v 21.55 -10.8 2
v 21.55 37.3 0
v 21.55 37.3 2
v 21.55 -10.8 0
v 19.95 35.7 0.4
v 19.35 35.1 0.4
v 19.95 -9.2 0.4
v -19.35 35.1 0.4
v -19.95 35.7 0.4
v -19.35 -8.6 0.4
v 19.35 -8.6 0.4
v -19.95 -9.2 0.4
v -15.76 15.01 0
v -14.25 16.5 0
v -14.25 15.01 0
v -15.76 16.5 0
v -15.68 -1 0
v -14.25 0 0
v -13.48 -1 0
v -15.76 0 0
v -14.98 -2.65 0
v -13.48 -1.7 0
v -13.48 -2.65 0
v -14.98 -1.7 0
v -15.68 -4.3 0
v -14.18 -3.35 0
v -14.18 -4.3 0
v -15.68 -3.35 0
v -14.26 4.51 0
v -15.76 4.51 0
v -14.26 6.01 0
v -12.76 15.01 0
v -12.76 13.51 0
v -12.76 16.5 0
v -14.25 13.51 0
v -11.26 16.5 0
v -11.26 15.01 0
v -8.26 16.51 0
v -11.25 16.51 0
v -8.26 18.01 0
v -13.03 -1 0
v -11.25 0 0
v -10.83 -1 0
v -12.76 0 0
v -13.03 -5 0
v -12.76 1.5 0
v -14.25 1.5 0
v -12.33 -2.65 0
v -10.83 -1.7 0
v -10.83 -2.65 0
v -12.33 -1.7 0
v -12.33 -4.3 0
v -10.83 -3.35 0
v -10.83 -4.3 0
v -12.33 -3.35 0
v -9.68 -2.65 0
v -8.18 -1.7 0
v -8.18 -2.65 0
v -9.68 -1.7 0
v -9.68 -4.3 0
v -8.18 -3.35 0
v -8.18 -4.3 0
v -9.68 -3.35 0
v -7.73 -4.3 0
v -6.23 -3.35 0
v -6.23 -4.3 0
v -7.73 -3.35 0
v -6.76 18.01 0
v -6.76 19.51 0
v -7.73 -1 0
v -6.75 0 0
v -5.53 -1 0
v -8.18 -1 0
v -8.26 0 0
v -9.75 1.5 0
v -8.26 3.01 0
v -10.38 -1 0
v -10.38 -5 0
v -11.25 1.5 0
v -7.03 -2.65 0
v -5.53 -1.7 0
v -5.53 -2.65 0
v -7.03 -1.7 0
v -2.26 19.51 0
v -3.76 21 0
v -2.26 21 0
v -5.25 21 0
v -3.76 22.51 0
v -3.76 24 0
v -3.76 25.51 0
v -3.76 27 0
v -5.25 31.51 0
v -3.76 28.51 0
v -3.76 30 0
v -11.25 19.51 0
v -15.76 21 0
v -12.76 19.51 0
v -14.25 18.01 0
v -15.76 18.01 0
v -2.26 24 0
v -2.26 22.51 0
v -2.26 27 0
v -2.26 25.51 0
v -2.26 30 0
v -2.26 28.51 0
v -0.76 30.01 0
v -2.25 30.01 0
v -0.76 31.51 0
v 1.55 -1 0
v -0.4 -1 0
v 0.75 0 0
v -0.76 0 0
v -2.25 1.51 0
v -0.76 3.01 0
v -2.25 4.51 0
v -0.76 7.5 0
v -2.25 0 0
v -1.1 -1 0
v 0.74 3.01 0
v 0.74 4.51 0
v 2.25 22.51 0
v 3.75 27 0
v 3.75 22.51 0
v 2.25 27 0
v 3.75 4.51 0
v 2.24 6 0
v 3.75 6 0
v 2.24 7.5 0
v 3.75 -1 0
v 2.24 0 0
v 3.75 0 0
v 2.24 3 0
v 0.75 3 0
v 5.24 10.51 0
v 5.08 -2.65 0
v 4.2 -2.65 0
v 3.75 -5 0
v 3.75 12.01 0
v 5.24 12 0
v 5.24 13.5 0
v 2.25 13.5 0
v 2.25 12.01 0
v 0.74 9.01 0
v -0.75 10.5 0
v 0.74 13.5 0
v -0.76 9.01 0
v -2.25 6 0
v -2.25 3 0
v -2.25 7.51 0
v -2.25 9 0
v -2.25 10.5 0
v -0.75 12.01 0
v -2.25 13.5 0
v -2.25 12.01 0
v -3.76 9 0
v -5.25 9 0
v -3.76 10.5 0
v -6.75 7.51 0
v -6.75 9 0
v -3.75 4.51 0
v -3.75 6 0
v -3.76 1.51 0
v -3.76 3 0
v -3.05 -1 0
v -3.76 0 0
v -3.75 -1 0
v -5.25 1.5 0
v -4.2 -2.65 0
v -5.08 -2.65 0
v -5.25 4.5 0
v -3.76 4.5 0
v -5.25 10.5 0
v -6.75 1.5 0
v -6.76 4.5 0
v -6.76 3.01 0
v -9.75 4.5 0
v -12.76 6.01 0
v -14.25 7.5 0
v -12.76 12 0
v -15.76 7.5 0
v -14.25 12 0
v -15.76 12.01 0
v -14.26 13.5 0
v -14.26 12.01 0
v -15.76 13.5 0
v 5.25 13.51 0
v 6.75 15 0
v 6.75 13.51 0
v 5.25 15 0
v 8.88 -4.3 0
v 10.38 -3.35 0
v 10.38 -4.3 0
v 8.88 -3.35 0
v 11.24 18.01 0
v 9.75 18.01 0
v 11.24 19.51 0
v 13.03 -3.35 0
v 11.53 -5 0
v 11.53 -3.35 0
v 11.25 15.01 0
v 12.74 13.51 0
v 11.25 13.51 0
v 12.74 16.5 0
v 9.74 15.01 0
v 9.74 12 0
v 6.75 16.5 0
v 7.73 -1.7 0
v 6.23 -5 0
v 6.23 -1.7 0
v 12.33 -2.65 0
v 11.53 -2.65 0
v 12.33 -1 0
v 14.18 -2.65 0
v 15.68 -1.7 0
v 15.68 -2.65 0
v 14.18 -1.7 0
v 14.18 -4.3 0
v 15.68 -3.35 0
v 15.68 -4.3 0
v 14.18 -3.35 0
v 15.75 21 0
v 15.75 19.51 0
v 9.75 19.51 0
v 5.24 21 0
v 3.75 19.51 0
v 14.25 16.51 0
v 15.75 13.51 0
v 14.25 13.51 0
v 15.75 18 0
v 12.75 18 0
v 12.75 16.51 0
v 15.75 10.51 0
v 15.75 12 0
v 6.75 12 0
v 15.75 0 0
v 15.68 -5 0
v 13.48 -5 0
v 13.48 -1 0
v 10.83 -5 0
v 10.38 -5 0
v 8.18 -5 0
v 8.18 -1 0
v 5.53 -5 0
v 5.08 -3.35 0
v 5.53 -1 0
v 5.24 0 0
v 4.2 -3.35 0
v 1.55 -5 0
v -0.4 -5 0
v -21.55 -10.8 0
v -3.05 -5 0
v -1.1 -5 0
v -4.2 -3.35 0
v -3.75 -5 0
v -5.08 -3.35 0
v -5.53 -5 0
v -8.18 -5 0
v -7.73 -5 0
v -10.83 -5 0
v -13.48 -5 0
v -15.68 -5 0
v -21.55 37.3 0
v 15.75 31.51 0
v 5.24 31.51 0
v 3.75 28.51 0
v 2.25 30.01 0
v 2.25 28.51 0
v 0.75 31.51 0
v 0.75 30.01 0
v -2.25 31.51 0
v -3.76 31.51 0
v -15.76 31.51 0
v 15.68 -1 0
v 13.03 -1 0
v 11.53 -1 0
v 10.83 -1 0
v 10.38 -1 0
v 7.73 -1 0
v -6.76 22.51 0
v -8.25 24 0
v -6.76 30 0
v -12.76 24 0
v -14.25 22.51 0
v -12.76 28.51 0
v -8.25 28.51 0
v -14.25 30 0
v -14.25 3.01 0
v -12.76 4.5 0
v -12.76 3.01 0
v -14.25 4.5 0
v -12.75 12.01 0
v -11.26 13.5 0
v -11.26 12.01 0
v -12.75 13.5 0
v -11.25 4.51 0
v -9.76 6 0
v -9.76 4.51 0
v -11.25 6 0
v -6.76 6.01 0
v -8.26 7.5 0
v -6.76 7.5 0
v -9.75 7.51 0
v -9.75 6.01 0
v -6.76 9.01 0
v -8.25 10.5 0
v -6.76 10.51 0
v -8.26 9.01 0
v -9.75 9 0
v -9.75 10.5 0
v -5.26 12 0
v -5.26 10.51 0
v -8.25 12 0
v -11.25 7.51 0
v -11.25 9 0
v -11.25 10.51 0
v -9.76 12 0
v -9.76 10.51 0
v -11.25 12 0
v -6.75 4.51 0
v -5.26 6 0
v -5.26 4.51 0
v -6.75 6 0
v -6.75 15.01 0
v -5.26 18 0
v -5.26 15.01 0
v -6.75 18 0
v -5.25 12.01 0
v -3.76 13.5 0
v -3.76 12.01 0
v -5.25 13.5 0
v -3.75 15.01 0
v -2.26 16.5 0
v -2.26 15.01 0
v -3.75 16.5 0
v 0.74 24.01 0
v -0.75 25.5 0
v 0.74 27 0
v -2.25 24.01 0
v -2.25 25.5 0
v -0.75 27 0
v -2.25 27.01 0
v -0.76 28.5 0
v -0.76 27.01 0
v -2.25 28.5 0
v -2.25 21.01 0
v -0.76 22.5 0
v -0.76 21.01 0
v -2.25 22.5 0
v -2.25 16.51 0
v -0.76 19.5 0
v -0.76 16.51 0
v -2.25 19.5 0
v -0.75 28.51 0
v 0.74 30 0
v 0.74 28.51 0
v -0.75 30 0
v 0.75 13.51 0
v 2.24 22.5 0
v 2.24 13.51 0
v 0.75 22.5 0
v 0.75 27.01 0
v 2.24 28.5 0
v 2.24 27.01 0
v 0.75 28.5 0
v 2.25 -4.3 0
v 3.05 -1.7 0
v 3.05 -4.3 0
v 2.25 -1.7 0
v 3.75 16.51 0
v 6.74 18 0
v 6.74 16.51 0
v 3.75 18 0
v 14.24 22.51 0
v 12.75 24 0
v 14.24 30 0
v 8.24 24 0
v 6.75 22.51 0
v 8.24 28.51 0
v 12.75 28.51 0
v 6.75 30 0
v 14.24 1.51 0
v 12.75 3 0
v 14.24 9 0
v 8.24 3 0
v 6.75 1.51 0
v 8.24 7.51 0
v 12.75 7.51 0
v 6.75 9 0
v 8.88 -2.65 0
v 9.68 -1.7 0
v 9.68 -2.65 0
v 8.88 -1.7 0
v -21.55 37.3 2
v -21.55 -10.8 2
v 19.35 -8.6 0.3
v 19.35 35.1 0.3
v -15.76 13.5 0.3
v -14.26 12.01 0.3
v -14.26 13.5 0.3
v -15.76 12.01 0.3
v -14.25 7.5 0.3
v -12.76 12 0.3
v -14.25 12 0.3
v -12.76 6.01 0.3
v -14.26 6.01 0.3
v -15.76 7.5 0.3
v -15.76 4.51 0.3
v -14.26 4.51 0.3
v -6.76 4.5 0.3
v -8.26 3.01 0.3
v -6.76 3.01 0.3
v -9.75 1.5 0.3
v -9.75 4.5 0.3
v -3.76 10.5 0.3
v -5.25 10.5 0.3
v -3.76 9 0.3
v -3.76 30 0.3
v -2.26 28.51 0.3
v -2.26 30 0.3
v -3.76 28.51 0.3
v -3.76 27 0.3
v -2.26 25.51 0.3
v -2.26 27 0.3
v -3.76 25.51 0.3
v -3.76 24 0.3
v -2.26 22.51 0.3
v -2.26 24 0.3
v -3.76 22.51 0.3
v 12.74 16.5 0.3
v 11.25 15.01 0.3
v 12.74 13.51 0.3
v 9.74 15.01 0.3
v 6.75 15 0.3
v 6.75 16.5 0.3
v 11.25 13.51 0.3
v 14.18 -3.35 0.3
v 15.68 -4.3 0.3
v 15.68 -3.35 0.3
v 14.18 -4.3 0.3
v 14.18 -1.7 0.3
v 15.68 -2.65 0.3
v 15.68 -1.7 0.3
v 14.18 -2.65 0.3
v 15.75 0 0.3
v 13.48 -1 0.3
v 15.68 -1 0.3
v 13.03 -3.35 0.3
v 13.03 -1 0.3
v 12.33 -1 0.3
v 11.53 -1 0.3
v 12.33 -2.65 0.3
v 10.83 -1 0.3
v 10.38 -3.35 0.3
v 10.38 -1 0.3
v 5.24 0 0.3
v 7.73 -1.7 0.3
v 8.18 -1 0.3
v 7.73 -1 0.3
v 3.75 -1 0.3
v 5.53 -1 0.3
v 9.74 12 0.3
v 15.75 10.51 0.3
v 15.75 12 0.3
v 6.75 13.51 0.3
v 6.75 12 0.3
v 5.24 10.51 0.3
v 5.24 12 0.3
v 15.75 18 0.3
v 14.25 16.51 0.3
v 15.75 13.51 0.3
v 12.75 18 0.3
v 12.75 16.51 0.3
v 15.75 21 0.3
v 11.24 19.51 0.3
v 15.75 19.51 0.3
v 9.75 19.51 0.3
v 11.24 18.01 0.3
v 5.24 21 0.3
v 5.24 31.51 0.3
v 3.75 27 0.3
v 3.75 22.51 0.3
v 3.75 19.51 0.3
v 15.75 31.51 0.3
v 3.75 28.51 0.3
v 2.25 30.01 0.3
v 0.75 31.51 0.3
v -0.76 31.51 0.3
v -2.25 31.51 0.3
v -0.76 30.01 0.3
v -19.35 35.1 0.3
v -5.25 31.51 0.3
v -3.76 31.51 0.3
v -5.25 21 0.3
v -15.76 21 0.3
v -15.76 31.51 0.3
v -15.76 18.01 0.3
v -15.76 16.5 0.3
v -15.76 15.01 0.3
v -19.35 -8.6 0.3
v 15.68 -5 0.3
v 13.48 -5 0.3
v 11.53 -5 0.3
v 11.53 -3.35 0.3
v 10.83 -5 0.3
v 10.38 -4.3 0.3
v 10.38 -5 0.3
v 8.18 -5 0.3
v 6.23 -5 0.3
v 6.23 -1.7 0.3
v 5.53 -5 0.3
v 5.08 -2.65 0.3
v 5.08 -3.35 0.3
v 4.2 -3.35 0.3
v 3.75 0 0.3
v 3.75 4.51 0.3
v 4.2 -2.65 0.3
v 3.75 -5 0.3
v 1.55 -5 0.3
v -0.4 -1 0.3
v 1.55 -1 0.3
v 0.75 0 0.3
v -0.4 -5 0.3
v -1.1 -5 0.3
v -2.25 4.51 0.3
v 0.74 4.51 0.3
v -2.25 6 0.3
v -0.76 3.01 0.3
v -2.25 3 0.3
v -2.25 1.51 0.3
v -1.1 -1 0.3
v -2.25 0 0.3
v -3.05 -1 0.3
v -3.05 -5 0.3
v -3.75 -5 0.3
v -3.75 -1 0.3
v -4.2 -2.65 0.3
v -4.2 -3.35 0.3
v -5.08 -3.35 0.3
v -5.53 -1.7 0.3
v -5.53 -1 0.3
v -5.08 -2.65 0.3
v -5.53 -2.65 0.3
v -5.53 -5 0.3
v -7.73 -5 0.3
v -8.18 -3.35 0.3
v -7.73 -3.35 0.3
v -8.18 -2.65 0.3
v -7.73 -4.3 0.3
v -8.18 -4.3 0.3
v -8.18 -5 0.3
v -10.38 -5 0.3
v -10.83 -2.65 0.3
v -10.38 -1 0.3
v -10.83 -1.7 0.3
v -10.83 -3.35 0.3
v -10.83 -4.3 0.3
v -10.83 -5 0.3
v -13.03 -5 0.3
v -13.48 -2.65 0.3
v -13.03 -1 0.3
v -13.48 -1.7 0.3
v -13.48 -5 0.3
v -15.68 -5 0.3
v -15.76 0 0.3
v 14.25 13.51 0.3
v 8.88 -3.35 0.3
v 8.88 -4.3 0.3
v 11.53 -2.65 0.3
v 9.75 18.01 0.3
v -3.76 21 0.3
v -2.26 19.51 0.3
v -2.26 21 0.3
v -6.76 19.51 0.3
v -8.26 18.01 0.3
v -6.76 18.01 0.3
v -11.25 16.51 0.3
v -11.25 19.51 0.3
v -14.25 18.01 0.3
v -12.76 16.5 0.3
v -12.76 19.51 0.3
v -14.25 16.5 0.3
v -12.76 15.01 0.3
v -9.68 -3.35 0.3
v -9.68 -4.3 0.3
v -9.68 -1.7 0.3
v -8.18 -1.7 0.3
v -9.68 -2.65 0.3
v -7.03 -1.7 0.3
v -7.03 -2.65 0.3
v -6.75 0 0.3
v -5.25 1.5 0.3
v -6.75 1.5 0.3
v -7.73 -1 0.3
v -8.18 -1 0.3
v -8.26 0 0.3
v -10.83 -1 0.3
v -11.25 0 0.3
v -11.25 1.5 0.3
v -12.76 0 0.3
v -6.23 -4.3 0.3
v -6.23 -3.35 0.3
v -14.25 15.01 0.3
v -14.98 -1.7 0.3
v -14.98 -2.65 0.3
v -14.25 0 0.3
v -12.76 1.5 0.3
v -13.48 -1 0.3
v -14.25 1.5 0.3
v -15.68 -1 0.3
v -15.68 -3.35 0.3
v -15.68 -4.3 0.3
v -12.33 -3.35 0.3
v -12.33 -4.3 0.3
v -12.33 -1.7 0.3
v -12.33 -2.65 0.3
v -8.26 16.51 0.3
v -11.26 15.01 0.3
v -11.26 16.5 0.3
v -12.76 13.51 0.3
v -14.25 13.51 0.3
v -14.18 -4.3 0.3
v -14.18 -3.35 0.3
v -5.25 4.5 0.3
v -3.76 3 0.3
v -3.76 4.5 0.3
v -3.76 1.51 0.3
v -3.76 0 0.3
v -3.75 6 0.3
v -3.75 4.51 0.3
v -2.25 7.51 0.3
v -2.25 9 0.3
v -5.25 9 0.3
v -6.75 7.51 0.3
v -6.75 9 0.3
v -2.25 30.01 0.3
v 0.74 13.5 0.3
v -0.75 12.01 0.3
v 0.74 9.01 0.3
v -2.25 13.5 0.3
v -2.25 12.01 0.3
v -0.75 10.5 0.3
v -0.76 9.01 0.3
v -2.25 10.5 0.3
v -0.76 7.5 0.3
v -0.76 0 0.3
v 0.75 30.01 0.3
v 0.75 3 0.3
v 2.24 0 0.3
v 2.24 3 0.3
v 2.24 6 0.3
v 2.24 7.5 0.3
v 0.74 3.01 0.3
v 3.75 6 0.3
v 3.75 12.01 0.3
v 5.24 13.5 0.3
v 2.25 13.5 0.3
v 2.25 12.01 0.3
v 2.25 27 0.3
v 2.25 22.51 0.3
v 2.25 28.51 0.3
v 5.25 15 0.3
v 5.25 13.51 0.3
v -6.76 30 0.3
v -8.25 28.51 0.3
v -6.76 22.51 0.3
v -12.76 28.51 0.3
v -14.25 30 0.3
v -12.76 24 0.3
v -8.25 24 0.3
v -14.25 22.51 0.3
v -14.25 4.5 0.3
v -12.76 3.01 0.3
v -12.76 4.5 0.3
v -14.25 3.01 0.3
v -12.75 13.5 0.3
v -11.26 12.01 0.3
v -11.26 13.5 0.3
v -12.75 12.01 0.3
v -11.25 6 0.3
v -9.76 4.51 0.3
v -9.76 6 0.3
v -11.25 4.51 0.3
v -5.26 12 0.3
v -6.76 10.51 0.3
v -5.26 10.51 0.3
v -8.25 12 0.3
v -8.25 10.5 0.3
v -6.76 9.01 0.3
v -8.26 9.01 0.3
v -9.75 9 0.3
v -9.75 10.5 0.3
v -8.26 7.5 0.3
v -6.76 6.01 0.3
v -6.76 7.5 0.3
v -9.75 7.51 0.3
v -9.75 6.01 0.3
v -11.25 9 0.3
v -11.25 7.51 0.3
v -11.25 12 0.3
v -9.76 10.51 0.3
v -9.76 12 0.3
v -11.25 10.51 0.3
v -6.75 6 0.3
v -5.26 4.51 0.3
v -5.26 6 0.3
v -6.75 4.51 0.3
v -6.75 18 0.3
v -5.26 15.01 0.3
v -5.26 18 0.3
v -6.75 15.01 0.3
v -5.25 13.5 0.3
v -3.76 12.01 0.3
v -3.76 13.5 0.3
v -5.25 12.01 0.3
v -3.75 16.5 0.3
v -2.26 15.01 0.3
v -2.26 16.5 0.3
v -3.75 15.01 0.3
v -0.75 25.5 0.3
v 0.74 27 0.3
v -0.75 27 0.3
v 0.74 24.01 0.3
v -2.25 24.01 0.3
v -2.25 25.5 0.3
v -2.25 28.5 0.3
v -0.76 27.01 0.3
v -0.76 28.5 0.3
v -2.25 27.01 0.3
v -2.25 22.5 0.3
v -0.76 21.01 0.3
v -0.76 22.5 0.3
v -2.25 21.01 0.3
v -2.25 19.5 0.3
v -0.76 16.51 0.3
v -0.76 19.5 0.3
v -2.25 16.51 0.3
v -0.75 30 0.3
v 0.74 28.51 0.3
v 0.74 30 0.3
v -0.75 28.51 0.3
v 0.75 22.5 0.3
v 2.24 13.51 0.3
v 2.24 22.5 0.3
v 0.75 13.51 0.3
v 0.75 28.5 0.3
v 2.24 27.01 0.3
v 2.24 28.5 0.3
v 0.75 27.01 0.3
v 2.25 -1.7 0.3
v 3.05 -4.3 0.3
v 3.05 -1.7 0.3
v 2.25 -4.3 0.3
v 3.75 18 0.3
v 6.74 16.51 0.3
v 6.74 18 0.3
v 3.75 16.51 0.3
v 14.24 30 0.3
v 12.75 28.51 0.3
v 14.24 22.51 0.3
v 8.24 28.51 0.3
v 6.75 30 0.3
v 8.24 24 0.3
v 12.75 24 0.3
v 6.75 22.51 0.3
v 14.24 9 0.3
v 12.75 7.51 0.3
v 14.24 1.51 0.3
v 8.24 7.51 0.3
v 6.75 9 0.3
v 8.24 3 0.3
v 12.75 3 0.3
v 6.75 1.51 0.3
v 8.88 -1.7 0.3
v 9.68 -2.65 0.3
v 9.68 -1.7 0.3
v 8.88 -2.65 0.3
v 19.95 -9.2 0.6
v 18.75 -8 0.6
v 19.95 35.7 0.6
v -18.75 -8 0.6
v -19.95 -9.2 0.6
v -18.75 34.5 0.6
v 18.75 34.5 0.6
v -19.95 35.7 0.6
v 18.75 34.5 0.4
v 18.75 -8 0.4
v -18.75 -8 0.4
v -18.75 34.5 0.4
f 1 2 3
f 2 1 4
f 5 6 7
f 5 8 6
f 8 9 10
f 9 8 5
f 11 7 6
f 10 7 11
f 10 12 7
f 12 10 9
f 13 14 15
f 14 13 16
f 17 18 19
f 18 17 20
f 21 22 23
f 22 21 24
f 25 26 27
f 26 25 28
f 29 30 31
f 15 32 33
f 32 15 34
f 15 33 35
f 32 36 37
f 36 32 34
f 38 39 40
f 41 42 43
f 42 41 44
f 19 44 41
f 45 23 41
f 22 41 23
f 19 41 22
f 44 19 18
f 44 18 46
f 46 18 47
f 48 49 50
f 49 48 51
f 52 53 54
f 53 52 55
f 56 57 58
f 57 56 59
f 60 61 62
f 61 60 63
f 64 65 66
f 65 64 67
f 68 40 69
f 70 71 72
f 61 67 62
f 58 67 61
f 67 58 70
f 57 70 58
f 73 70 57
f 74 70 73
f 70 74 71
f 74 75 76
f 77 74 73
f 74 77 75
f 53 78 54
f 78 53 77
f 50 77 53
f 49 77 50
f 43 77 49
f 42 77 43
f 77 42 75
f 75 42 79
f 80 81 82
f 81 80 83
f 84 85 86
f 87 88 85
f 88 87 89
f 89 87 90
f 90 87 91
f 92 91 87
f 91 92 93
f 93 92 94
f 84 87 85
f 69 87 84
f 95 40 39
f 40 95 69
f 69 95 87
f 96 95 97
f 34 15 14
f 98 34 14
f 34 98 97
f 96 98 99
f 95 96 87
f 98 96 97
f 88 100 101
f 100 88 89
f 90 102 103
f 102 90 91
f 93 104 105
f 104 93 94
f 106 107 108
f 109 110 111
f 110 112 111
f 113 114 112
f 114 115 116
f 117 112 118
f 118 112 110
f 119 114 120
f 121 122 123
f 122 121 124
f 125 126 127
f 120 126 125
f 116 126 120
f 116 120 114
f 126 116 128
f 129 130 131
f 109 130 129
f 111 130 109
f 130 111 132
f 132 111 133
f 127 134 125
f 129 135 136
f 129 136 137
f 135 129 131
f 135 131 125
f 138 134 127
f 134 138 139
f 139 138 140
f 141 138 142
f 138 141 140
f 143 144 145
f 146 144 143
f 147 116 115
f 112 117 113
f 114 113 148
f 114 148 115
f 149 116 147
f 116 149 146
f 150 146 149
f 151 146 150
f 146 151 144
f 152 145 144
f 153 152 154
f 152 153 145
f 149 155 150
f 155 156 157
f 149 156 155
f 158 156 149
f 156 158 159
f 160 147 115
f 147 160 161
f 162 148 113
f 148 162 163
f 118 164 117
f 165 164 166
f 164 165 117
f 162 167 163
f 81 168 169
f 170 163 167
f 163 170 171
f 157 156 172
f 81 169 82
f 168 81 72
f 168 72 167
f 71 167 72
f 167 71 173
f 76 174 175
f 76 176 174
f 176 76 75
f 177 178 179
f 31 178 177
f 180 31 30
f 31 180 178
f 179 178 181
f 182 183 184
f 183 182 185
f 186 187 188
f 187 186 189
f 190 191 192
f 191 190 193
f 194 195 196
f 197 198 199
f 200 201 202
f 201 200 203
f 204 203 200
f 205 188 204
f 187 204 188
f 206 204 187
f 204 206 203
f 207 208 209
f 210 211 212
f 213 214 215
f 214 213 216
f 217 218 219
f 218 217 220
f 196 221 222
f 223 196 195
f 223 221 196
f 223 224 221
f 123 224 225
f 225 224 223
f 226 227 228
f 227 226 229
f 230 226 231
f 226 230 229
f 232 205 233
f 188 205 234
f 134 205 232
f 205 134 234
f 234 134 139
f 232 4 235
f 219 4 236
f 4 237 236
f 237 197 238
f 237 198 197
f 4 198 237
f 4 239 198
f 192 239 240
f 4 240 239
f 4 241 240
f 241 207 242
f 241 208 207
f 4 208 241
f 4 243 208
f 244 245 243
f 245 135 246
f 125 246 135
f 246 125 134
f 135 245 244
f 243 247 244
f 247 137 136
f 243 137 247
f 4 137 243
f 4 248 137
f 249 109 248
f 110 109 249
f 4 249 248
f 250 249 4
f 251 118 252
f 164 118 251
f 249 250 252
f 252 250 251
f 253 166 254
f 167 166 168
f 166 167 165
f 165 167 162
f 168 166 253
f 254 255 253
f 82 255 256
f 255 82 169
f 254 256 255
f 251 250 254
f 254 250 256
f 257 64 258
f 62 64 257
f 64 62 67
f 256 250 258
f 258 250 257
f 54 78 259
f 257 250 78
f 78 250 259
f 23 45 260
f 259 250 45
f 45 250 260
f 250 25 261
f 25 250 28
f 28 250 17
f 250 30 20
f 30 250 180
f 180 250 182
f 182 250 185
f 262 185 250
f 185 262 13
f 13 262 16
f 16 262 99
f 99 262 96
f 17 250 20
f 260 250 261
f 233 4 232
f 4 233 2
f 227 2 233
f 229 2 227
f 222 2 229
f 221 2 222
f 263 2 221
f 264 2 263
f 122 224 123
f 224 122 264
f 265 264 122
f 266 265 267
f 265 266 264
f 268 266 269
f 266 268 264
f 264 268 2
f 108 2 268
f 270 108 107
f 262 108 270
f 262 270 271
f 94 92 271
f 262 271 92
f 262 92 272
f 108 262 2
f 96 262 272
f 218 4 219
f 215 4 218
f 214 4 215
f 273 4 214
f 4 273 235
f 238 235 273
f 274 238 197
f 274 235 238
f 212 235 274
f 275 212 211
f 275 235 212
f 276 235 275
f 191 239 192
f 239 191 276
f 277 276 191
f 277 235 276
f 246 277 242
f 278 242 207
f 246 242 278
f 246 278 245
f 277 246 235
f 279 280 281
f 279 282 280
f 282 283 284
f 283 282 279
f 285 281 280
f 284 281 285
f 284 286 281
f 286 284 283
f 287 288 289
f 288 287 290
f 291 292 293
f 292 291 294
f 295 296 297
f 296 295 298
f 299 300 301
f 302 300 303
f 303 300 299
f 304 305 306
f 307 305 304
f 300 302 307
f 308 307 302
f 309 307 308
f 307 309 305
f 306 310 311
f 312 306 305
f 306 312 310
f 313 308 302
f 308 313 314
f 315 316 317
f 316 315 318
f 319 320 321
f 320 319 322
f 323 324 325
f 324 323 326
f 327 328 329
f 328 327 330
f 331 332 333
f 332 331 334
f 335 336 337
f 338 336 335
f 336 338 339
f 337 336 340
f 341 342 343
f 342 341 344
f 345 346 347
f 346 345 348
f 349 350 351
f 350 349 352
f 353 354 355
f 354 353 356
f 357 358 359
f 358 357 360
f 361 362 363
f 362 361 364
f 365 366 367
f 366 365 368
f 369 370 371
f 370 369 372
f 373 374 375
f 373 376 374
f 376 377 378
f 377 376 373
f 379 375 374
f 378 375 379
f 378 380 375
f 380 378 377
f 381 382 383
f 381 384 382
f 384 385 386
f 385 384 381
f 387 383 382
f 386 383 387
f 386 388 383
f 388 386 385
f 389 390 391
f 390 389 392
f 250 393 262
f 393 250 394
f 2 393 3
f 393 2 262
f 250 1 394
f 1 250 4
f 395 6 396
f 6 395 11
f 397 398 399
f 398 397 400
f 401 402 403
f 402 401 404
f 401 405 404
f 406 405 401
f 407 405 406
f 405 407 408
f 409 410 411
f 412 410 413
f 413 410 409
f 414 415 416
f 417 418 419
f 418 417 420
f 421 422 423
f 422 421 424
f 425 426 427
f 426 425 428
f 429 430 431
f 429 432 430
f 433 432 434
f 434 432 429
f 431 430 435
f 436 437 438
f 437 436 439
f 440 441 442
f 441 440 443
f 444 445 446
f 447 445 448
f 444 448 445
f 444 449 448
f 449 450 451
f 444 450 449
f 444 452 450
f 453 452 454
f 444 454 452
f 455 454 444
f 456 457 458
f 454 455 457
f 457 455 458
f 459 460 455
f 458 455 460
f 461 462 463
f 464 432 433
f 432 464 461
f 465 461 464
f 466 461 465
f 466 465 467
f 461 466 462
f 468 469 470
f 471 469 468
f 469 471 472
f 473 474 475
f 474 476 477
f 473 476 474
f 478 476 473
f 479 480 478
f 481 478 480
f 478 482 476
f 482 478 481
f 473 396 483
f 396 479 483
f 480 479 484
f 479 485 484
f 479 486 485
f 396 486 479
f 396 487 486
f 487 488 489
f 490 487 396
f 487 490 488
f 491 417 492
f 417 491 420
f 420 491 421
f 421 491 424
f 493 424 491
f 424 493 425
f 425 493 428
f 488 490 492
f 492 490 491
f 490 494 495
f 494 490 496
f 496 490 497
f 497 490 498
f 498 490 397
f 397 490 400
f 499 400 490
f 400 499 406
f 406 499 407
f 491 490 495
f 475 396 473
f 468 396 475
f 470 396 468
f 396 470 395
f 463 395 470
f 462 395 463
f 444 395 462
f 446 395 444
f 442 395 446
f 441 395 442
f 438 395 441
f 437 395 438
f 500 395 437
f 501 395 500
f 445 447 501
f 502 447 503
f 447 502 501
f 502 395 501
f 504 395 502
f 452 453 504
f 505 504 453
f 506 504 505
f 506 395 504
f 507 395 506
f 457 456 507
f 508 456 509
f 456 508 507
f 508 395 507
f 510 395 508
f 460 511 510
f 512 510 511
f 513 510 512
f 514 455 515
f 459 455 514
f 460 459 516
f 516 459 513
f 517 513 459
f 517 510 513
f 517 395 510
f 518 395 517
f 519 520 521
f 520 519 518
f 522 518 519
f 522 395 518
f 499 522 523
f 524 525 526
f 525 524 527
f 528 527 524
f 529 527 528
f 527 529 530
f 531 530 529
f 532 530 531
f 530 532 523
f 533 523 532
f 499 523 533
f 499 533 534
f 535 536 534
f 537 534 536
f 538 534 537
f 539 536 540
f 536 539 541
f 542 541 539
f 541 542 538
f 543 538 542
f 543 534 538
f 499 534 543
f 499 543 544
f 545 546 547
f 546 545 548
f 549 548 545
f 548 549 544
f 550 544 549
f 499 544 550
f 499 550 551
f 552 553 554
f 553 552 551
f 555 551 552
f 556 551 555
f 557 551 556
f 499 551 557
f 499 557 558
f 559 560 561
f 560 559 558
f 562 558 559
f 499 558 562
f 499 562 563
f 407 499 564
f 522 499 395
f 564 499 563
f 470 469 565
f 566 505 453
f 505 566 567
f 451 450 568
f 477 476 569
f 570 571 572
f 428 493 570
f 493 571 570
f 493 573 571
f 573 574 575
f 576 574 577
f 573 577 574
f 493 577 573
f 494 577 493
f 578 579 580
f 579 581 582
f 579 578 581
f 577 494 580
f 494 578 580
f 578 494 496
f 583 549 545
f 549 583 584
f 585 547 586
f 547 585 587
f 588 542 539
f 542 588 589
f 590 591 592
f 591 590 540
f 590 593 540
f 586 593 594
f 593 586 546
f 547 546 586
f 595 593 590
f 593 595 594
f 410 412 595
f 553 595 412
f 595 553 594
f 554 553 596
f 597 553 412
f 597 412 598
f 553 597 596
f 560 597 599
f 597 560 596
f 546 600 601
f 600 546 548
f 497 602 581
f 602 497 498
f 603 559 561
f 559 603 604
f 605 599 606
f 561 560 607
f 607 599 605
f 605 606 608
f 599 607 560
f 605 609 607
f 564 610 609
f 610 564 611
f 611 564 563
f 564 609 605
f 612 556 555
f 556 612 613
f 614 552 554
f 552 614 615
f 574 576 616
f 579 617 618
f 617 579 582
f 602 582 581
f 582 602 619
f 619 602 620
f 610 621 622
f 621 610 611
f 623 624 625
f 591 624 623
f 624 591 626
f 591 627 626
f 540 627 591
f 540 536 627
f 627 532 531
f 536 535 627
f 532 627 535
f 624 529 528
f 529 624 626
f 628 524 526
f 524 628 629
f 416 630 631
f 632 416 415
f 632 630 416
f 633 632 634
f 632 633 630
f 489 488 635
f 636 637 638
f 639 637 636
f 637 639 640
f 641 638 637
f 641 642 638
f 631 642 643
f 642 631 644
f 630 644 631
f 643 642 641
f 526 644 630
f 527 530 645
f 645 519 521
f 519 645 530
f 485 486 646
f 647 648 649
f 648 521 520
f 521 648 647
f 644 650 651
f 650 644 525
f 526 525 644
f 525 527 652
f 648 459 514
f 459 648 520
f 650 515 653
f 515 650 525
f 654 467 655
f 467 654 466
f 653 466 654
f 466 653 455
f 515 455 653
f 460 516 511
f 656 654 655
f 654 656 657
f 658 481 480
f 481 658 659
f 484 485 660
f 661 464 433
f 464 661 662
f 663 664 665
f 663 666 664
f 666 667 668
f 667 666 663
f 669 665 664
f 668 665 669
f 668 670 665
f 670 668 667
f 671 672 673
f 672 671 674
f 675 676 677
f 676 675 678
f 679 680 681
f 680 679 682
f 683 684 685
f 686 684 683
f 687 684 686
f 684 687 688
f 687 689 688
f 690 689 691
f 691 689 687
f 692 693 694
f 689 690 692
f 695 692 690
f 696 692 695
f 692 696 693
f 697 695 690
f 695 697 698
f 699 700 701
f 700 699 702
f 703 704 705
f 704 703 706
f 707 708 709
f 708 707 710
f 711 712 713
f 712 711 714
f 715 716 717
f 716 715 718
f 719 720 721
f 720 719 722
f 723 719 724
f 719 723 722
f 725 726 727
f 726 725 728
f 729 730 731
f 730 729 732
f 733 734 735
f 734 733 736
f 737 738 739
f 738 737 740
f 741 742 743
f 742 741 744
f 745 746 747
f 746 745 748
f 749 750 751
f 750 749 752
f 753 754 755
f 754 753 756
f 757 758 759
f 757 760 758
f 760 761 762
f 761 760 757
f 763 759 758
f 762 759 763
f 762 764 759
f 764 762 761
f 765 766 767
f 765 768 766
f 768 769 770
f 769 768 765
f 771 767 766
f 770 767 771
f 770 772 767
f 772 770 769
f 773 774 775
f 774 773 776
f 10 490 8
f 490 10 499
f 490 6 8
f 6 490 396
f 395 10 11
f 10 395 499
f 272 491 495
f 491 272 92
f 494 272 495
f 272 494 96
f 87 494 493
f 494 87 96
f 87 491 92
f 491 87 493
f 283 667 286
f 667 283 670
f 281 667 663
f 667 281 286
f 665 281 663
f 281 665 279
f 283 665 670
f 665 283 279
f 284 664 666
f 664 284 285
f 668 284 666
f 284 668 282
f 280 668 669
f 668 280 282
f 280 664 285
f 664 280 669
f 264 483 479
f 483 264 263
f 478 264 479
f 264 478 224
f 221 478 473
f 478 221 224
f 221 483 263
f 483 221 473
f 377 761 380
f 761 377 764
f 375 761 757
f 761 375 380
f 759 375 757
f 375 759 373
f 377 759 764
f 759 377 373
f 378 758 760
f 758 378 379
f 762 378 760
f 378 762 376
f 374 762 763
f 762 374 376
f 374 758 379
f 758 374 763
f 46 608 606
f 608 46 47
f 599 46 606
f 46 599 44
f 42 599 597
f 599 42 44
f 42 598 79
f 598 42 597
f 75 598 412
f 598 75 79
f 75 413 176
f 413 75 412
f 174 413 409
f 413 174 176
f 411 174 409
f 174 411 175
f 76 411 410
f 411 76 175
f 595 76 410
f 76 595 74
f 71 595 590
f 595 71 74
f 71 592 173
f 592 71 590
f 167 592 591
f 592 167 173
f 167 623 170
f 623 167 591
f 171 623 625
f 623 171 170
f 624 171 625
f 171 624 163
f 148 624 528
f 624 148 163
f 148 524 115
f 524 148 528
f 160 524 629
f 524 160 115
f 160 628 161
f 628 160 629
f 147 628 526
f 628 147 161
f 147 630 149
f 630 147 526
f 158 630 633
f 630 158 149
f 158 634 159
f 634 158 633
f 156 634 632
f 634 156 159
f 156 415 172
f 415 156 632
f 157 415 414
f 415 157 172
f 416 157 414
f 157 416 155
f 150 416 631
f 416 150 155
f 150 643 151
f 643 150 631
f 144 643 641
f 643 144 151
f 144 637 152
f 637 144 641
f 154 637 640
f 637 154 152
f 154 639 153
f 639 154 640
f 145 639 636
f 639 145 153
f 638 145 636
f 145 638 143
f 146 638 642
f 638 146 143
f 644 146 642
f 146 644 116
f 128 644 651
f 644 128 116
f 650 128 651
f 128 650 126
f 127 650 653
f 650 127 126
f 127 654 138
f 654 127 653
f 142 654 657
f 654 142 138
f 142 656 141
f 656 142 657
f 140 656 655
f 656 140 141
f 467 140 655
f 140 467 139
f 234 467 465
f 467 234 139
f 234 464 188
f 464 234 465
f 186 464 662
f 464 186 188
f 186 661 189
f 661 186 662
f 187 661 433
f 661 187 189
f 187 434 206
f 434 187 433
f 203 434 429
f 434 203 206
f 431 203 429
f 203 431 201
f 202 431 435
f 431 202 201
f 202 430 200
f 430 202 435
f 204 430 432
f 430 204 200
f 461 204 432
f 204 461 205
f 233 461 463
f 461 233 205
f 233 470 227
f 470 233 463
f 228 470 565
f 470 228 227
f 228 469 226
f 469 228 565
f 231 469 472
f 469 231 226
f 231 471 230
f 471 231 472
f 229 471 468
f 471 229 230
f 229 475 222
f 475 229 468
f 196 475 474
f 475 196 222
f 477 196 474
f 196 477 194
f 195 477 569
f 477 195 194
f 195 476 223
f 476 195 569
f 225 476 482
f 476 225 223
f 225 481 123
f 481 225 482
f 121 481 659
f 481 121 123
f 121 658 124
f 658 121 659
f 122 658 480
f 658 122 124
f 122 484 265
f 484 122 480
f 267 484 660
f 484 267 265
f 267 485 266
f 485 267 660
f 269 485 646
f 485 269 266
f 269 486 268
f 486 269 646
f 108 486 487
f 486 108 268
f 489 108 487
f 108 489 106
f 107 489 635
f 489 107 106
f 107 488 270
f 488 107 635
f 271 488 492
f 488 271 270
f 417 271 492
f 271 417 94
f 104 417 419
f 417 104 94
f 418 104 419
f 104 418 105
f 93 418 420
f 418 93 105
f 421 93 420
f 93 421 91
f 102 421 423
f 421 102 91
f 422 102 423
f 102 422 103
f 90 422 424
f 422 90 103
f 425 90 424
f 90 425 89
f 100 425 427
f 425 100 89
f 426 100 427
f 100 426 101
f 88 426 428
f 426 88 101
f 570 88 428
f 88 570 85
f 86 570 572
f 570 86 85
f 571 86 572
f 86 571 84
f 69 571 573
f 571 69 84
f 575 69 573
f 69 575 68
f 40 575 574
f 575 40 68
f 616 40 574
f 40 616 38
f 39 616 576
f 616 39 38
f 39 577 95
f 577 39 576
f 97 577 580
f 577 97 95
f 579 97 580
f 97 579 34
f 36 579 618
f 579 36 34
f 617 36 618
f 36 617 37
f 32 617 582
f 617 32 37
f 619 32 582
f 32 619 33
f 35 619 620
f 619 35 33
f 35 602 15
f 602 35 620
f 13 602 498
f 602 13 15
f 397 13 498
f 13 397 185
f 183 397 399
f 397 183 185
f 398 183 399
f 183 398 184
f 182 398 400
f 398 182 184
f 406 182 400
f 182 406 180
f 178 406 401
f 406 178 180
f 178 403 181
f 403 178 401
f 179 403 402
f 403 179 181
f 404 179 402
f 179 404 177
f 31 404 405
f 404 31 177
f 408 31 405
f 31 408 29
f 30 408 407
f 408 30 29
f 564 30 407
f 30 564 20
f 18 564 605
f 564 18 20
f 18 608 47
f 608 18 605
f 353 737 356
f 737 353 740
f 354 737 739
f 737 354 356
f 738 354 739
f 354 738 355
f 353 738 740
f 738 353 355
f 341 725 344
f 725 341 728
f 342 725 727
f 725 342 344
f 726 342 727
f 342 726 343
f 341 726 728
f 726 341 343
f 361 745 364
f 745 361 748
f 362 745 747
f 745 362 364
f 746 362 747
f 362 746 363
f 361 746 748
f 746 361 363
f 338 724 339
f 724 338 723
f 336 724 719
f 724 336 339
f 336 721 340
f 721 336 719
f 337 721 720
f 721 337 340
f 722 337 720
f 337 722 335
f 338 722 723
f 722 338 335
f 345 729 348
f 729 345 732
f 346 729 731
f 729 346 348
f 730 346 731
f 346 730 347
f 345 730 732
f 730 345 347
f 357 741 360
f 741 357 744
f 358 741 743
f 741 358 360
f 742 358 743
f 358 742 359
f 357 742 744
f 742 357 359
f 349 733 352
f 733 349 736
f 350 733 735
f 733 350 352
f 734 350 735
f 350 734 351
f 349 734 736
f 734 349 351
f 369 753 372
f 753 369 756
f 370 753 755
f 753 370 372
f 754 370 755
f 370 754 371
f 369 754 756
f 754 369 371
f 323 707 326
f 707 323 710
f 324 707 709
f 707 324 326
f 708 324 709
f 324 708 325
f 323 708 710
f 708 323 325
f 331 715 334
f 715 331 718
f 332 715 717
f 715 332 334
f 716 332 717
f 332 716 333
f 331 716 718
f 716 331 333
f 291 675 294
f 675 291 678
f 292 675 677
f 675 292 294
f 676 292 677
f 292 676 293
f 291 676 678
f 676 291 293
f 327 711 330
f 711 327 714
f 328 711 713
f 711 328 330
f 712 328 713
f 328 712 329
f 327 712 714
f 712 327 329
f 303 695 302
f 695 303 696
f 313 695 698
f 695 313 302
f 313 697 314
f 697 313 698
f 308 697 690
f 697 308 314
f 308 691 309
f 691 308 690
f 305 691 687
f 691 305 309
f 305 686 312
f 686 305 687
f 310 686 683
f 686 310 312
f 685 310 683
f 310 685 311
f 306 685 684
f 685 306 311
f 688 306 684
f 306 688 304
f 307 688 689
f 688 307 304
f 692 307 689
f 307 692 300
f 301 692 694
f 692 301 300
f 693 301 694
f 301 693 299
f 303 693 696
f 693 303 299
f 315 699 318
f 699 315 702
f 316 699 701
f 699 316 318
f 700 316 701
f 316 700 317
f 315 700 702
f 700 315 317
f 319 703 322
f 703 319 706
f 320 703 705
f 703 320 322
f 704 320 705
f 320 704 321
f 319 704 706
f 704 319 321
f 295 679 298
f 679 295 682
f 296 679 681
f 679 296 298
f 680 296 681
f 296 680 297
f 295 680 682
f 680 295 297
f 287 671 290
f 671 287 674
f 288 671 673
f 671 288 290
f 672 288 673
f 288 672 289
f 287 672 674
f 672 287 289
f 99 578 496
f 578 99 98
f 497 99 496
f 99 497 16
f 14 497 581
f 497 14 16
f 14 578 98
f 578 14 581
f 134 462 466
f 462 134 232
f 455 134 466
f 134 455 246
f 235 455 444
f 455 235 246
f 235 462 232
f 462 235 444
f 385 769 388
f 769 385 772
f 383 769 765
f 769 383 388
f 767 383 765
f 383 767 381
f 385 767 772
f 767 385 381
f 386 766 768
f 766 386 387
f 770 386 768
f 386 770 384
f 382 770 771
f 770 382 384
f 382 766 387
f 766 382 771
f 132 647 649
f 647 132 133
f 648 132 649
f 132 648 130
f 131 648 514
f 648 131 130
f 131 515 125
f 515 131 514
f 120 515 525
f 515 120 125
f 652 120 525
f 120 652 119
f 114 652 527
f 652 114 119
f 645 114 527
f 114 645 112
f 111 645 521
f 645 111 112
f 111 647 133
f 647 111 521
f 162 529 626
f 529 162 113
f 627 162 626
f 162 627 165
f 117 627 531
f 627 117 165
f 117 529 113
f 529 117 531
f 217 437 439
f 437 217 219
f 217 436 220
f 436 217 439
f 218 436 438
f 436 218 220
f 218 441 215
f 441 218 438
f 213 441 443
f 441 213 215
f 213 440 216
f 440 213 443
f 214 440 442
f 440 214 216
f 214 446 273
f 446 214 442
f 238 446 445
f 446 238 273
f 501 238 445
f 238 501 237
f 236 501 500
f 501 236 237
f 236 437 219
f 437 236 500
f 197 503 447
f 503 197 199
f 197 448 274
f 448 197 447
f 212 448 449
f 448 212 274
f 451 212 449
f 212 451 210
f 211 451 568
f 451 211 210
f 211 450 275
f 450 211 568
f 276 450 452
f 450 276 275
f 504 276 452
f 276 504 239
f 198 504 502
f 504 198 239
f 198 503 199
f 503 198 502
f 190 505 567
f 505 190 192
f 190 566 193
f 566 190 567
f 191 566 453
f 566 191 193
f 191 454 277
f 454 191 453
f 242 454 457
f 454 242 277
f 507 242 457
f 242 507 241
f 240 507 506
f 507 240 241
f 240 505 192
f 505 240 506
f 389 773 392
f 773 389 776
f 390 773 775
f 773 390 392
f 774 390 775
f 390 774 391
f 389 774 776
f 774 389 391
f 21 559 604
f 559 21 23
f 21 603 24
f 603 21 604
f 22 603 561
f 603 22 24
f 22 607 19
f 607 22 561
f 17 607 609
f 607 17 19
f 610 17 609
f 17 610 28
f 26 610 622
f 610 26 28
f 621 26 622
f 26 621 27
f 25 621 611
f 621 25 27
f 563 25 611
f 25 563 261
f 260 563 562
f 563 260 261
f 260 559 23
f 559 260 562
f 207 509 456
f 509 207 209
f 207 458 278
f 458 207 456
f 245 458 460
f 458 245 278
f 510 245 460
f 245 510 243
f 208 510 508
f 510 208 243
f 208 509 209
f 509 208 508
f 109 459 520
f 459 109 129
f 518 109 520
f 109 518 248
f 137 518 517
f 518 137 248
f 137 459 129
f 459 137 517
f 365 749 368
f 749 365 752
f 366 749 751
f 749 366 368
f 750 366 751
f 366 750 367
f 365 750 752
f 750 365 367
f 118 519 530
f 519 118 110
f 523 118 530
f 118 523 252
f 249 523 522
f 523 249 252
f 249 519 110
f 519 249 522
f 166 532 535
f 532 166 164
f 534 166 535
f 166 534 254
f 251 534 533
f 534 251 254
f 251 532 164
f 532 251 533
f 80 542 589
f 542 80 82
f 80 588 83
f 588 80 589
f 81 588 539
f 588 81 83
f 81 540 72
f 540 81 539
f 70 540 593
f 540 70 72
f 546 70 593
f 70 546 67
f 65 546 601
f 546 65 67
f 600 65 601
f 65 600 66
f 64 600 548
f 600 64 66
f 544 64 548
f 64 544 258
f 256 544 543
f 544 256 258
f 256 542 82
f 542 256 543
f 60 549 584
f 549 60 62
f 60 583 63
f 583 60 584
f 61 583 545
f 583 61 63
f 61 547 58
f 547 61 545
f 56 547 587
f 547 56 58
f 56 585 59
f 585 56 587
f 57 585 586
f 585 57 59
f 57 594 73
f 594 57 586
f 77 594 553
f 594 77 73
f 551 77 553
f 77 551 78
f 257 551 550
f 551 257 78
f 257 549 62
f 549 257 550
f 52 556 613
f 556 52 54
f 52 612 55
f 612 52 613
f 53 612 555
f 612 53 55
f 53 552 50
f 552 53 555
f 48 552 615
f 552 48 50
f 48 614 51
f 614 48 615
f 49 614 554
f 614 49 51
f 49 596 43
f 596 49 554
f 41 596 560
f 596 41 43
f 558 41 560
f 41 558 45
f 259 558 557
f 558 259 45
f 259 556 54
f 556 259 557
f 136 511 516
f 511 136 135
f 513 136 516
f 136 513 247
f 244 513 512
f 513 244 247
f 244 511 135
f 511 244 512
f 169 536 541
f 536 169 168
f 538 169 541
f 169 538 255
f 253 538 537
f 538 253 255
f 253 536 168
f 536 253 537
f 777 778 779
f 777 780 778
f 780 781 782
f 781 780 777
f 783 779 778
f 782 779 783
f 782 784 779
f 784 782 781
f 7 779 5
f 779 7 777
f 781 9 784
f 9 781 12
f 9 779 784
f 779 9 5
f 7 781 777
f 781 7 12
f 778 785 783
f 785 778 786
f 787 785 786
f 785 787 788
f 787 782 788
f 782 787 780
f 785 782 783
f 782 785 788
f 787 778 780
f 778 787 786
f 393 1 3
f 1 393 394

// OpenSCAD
// Matter 配对二维码 + 手动配对码 测试模型
// 在底面（贴热床的那一面）凹刻 QR 码，QR 下方凹刻 11 位配对码。
// 从底部往上看时图案是正读的（内部已做 X 镜像）。
//
// 用法：修改文件末尾的 passcode / discriminator 等参数即可。
//   passcode      Matter setup passcode（"password"），1 ~ 99999998
//   discriminator Matter 12 位 discriminator（0 ~ 4095）

$fn = 32;

/* ---------- 测试模型 ---------- */
// 使用 Matter 官方示例值：passcode 20202021，discriminator 3840
// 手动配对码应为 3497-011-2332
matter_label_plate(passcode = 20202021, discriminator = 3840,
                   vid = 65521, pid = 32768);

echo(payload = matter_qr_payload(20202021, 3840, 65521, 32768));
echo(manual_code = matter_manual_code(20202021, 3840));

/* ---------- 通用位运算工具（OpenSCAD 没有位运算符） ---------- */

function sum(v) = v * [for (x = v) 1];
function concat_all(v) = [for (a = v) for (b = a) b];
function zeros(n) = [for (i = [0 : 151]) if (i < n) 0];
function bits_lsb(n, len) = [for (i = [0 : len - 1]) floor(n / pow(2, i)) % 2];
function bits_msb(n, len) = [for (i = [len - 1 : -1 : 0]) floor(n / pow(2, i)) % 2];
function xor_n(a, b, n) =
  [for (i = [0 : n - 1]) (floor(a / pow(2, i)) + floor(b / pow(2, i))) % 2]
  * [for (i = [0 : n - 1]) pow(2, i)];
function join(l, i = 0) = i >= len(l) ? "" : str(l[i], join(l, i + 1));
function pad_zero(n, w) = let(s = str(n)) len(s) >= w ? s : str(join([for (i = [1 : w - len(s)]) "0"]), s);

/* ---------- Matter：QR payload（Base38）与手动配对码 ---------- */

B38 = "0123456789ABCDEFGHIJKLMNOPQRSTUVWXYZ-.";

// 88 bit payload，字段按 LSB 在前拼接
function matter_payload_bits(passcode, disc, vid, pid, flow, rendezvous) =
  concat_all([
    bits_lsb(0, 3),          // version
    bits_lsb(vid, 16),
    bits_lsb(pid, 16),
    bits_lsb(flow, 2),       // commissioning flow
    bits_lsb(rendezvous, 8), // 发现方式：1=SoftAP 2=BLE 4=OnNetwork
    bits_lsb(disc, 12),
    bits_lsb(passcode, 27),
    bits_lsb(0, 4)           // padding
  ]);

function matter_payload_bytes(passcode, disc, vid, pid, flow, rendezvous) =
  let(b = matter_payload_bits(passcode, disc, vid, pid, flow, rendezvous))
  [for (k = [0 : 10]) [for (i = [0 : 7]) b[8 * k + i]] * [1, 2, 4, 8, 16, 32, 64, 128]];

// 把 v 编成 n 个 Base38 字符，低位在前
function b38_chunk(v, n) = join([for (i = [0 : n - 1]) B38[floor(v / pow(38, i)) % 38]]);

function matter_qr_payload(passcode, discriminator, vid = 0, pid = 0, flow = 0, rendezvous = 2) =
  assert(passcode >= 1 && passcode <= 99999998, "passcode 必须在 1 ~ 99999998")
  assert(discriminator >= 0 && discriminator <= 4095, "discriminator 必须在 0 ~ 4095")
  let(b = matter_payload_bytes(passcode, discriminator, vid, pid, flow, rendezvous))
  str("MT:",
      join([for (g = [0 : 2]) b38_chunk(b[3 * g] + b[3 * g + 1] * 256 + b[3 * g + 2] * 65536, 5)]),
      b38_chunk(b[9] + b[10] * 256, 4));

// Verhoeff 校验
VD = [[0,1,2,3,4,5,6,7,8,9],[1,2,3,4,0,6,7,8,9,5],[2,3,4,0,1,7,8,9,5,6],
      [3,4,0,1,2,8,9,5,6,7],[4,0,1,2,3,9,5,6,7,8],[5,9,8,7,6,0,4,3,2,1],
      [6,5,9,8,7,1,0,4,3,2],[7,6,5,9,8,2,1,0,4,3],[8,7,6,5,9,3,2,1,0,4],
      [9,8,7,6,5,4,3,2,1,0]];
VP = [[0,1,2,3,4,5,6,7,8,9],[1,5,7,6,2,8,3,0,9,4],[5,8,0,3,7,9,6,1,4,2],
      [8,9,1,6,0,4,3,5,2,7],[9,4,5,3,1,2,6,8,7,0],[4,2,8,6,5,7,3,9,0,1],
      [2,7,9,3,8,0,6,4,1,5],[7,0,4,6,9,1,3,2,5,8]];
VINV = [0,4,3,2,1,5,6,7,8,9];

function verhoeff_c(ds, i = 0, c = 0) =
  i >= len(ds) ? c
  : verhoeff_c(ds, i + 1, VD[c][VP[(i + 1) % 8][ds[len(ds) - 1 - i]]]);
function verhoeff_check(s) =
  VINV[verhoeff_c([for (i = [0 : len(s) - 1]) search(s[i], "0123456789")[0]])];

// 11 位手动配对码（标准流程，不含 VID/PID），返回不带分隔符的字符串
function matter_manual_code(passcode, discriminator) =
  let(sd = floor(discriminator / 256),                 // 4 位 short discriminator
      digits = str(floor(sd / 4),
                   pad_zero((sd % 4) * 16384 + passcode % 16384, 5),
                   pad_zero(floor(passcode / 16384), 4)))
  str(digits, verhoeff_check(digits));

// 4-3-4 分组，便于阅读
function matter_manual_code_pretty(code) =
  str(substr(code, 0, 4), "-", substr(code, 4, 3), "-", substr(code, 7, 4));
function substr(s, start, n) = join([for (i = [start : start + n - 1]) s[i]]);

/* ---------- QR 编码：固定 Version 1 (21x21)、纠错等级 L、字母数字模式 ---------- */
// Matter payload 共 22 个字符（MT: + 19 位 Base38），Version 1-L 最多容纳 25 个。

QN = 21;
AN_TABLE = "0123456789ABCDEFGHIJKLMNOPQRSTUVWXYZ $%*+-./:";

// GF(256) 表（本原多项式 0x11D）
function gf_exp_build(i, e, acc) =
  i >= 255 ? acc
  : gf_exp_build(i + 1, e * 2 >= 256 ? xor_n(e * 2, 285, 9) : e * 2, concat(acc, [e]));
GF_EXP = gf_exp_build(0, 1, []);
GF_LOG = [for (v = [0 : 255]) v == 0 ? 0 : search(v, GF_EXP)[0]];
function gf_mul(a, b) = (a == 0 || b == 0) ? 0 : GF_EXP[(GF_LOG[a] + GF_LOG[b]) % 255];

// 7 个纠错码字的生成多项式系数
RS_GEN = [127, 122, 154, 164, 11, 68, 117];
function rs_step(rem, d) =
  let(f = xor_n(d, rem[0], 8))
  [for (i = [0 : 6]) xor_n(i < 6 ? rem[i + 1] : 0, gf_mul(RS_GEN[i], f), 8)];
function rs_rem(data, i = 0, rem = [0, 0, 0, 0, 0, 0, 0]) =
  i >= len(data) ? rem : rs_rem(data, i + 1, rs_step(rem, data[i]));

function an_val(c) = search(c, AN_TABLE)[0];
function an_bits(s) = concat_all([
  for (i = [0 : 2 : len(s) - 1])
    i + 1 < len(s) ? bits_msb(45 * an_val(s[i]) + an_val(s[i + 1]), 11)
                   : bits_msb(an_val(s[i]), 6)
]);

// 19 个数据码字
function qr_data_cw(s) =
  let(b0 = concat_all([[0, 0, 1, 0], bits_msb(len(s), 9), an_bits(s)]))
  assert(len(b0) <= 152, "文本太长，Version 1-L 放不下")
  let(b1 = concat(b0, zeros(min(4, 152 - len(b0)))),
      b2 = concat(b1, zeros((8 - len(b1) % 8) % 8)),
      bytes = [for (k = [0 : len(b2) / 8 - 1])
                 [for (i = [0 : 7]) b2[8 * k + i]] * [128, 64, 32, 16, 8, 4, 2, 1]])
  concat(bytes, [for (i = [0 : 18]) if (i >= len(bytes)) (i - len(bytes)) % 2 == 0 ? 236 : 17]);

function qr_codeword_bits(s) =
  let(d = qr_data_cw(s))
  concat_all([for (c = concat(d, rs_rem(d))) bits_msb(c, 8)]);

// 功能图形区域（定位图形+分隔符+格式信息、定时线）
function is_func(r, c) =
  (r < 9 && c < 9) || (r < 9 && c >= 13) || (r >= 13 && c < 9) || r == 6 || c == 6;

// 数据模块的蛇形填充顺序，值为 r*QN + c
DATA_ORDER = [
  for (j = [0 : 9])
    let(cr = j < 7 ? 20 - 2 * j : 19 - 2 * j)
    for (t = [0 : 20]) for (dc = [0 : 1])
      let(r = j % 2 == 0 ? 20 - t : t, c = cr - dc)
      if (!is_func(r, c)) r * QN + c
];

// 纠错等级 L 的 15 位格式信息，下标为掩码编号
FMT_L = [30660, 29427, 32170, 30877, 26159, 25368, 27713, 26998];

function fmt_idx(r, c) =
  c == 8 && r <= 5 ? r
  : c == 8 && r == 7 ? 6
  : r == 8 && c == 8 ? 7
  : r == 8 && c == 7 ? 8
  : r == 8 && c <= 5 ? 14 - c
  : r == 8 && c >= 13 ? 20 - c
  : c == 8 && r >= 14 ? r - 6
  : -1;

function finder_dark(r, c) =
  r == 0 || r == 6 || c == 0 || c == 6 || (r >= 2 && r <= 4 && c >= 2 && c <= 4);

function mask_flip(m, r, c) =
  (m == 0 ? (r + c) % 2
 : m == 1 ? r % 2
 : m == 2 ? c % 3
 : m == 3 ? (r + c) % 3
 : m == 4 ? (floor(r / 2) + floor(c / 3)) % 2
 : m == 5 ? (r * c) % 2 + (r * c) % 3
 : m == 6 ? ((r * c) % 2 + (r * c) % 3) % 2
 :          ((r + c) % 2 + (r * c) % 3) % 2) == 0;

function qr_dark(bits, mask, r, c) =
  !is_func(r, c) ? (bits[search(r * QN + c, DATA_ORDER)[0]] == 1) != mask_flip(mask, r, c)
  : (r < 7 && c < 7) ? finder_dark(r, c)
  : (r < 7 && c >= 14) ? finder_dark(r, c - 14)
  : (r >= 14 && c < 7) ? finder_dark(r - 14, c)
  : fmt_idx(r, c) >= 0 ? floor(FMT_L[mask] / pow(2, fmt_idx(r, c))) % 2 == 1
  : (r == 13 && c == 8) ? true
  : (r == 6 && c >= 8 && c <= 12) ? c % 2 == 0
  : (c == 6 && r >= 8 && r <= 12) ? r % 2 == 0
  : false;

// 返回 21x21 的 0/1 矩阵，matrix[行][列]，行 0 在最上
// mask 为掩码编号（0~7，任意一个都是合法的 QR 码）
function qr_matrix(text, mask = 0) =
  let(bits = qr_codeword_bits(text))
  [for (r = [0 : QN - 1]) [for (c = [0 : QN - 1]) qr_dark(bits, mask, r, c) ? 1 : 0]];

/* ---------- 几何 ---------- */

// 2D：深色模块，左下角为原点，m 为模块边长
module qr_2d(matrix, m = 1) {
  n = len(matrix);
  for (r = [0 : n - 1]) for (c = [0 : n - 1])
    if (matrix[r][c] == 1)
      translate([c * m, (n - 1 - r) * m]) square(m + 0.01);
}

// 七段数码管风格的数字，自己用矩形拼，不依赖系统字体。
// 左下角为原点，w×h 为字符框，t 为笔画宽度。段顺序 a b c d e f g：
//   a 上横  b 右上竖  c 右下竖  d 下横  e 左下竖  f 左上竖  g 中横
SEG7 = [[1,1,1,1,1,1,0], [0,1,1,0,0,0,0], [1,1,0,1,1,0,1], [1,1,1,1,0,0,1],
        [0,1,1,0,0,1,1], [1,0,1,1,0,1,1], [1,0,1,1,1,1,1], [1,1,1,0,0,0,0],
        [1,1,1,1,1,1,1], [1,1,1,1,0,1,1]];

module seg7_digit(d, w, h, t) {
  s = SEG7[d];
  half = (h + t) / 2;   // 单侧竖笔的高度，上下两段在中横处重叠
  if (s[0]) translate([0, h - t]) square([w, t]);
  if (s[1]) translate([w - t, (h - t) / 2]) square([t, half]);
  if (s[2]) translate([w - t, 0]) square([t, half]);
  if (s[3]) square([w, t]);
  if (s[4]) square([t, half]);
  if (s[5]) translate([0, (h - t) / 2]) square([t, half]);
  if (s[6]) translate([0, (h - t) / 2]) square([w, t]);
}

// 每个字符的前进距离：数字 w + sp，分隔符 "-" 用 dl + sp
function seg7_adv(c, w, dl, sp) = c == "-" ? dl + sp : w + sp;
function seg7_x(code, i, w, dl, sp) =
  i == 0 ? 0 : sum([for (j = [0 : i - 1]) seg7_adv(code[j], w, dl, sp)]);
function seg7_width(code, w, dl, sp) = seg7_x(code, len(code), w, dl, sp) - sp;

// 以原点为水平中心、垂直中心绘制一串数字（含 "-"）
module seg7_text(code, h, t, sp = 0.45) {
  w = 0.55 * h;       // 字符宽度
  dl = 0.4 * w;       // 分隔符长度
  total = seg7_width(code, w, dl, sp);
  translate([-total / 2, -h / 2])
    for (i = [0 : len(code) - 1]) {
      c = code[i];
      translate([seg7_x(code, i, w, dl, sp), 0])
        if (c == "-") translate([0, (h - t) / 2]) square([dl, t]);
        else seg7_digit(search(c, "0123456789")[0], w, h, t);
    }
}

// 2D：QR 居中于原点上方，配对码在其下方。可直接用于凹刻
// text_size 为数字高度，seg_t 为笔画宽度（建议 ≥ 0.7，即 2 条挤出线）
module matter_label_2d(passcode, discriminator, vid = 0, pid = 0, flow = 0,
                       rendezvous = 2, m = 1.2, text_size = 4, gap = 3, mask = 0,
                       seg_t = 0.7) {
  qr = qr_matrix(matter_qr_payload(passcode, discriminator, vid, pid, flow, rendezvous), mask);
  code = matter_manual_code_pretty(matter_manual_code(passcode, discriminator));
  w = len(qr) * m;

  translate([-w / 2, 0]) qr_2d(qr, m);
  translate([0, -gap - text_size / 2])
    seg7_text(code, text_size, seg_t);
}

// 3D：一块平板，图案凹刻在 z=0 的底面，从底部看是正读的。
// 单色打印机用换色实现黑白：按颜色拆成互不重叠的几块
//   z = 0 ~ depth                  白色整层，深色模块位置镂空（凹槽）
//   z = depth ~ depth + dark_t     黑色"岛"（只覆盖二维码区域）
//                                  + 白色外圈（外壳侧壁），两者之间留 iso_gap 的空隙
//   z = depth + dark_t ~ thickness 白色整层，盖住空隙
// 黑色岛与白色外圈在该层里是互相分离的两块，切片后黑色部分在 G-code 里是
// 一段连续的打印，只需在它前后各插入一次 M600（层高 0.2mm 时就是第 3 层）：
//   白色外圈 → M600 换黑 → 黑色岛 → M600 换白 → 下一层。
// 空隙在内部被上下白层封住，外面看不到；侧壁全程是白色，没有黑线。
// float_gap：黑色岛下表面与下方白色面之间的悬空间隙（岛区域内白色顶面下降 float_gap，
// 凹槽顶面仍是黑色岛）。注意 float_gap 小于层高时，切片软件会把它四舍五入掉。
// 打印面积会比二维码区域大 2 * (iso_gap + wall)，二维码和文字大小不变。
module matter_label_plate(passcode, discriminator, vid = 0, pid = 0, flow = 0,
                          rendezvous = 2, m = 1.5, text_size = 4, gap = 1,
                          mask = 0, thickness = 2, depth = 0.4, dark_t = 0.2,
                          margin = 3, iso_gap = 1.2, wall = 1.6, float_gap = 0.1) {
  assert(float_gap >= 0 && float_gap < depth, "float_gap 必须在 0 ~ depth 之间");
  assert(thickness > depth + dark_t, "thickness 必须大于 depth + dark_t");
  qr_w = QN * m;
  plate_w = qr_w + 2 * margin;
  plate_h = qr_w + gap + text_size + 2 * margin;
  ext = iso_gap + wall;   // 外壳比黑色岛每边多出的宽度
  // 内容 y 范围：[-gap-text_size, qr_w]；e 为相对黑色岛每边外扩的距离
  module slab(z0, z1, e = 0)
    translate([-plate_w / 2 - e, -gap - text_size - margin - e, z0])
      cube([plate_w + 2 * e, plate_h + 2 * e, z1 - z0]);

  echo(str("黑色层 z=", depth, "~", depth + dark_t, "mm：白色外圈打完后 M600 换黑打黑色岛，",
           "岛打完后 M600 换回白"));
  echo(str("外壳尺寸 ", plate_w + 2 * ext, " x ", plate_h + 2 * ext, " mm"));

  color("white") difference() {
    slab(0, depth, ext);
    // 黑色岛正下方的白色顶面下降 float_gap，形成悬空间隙
    // 范围比黑色岛每边多出 iso_gap / 2，避免凹陷边缘与岛的底边重合（非流形）
    slab(depth - float_gap, depth + 0.01, iso_gap / 2);
    translate([0, 0, -0.01])
      linear_extrude(depth + 0.02)
        mirror([1, 0, 0])   // 底面朝外，镜像后从下往上看才是正的
          matter_label_2d(passcode, discriminator, vid, pid, flow, rendezvous,
                          m, text_size, gap, mask);
  }
  color("black") slab(depth, depth + dark_t);
  color("white") difference() {
    slab(depth, depth + dark_t, ext);
    slab(depth - 0.01, depth + dark_t + 0.01, iso_gap);
  }
  color("white") slab(depth + dark_t, thickness, ext);
}
